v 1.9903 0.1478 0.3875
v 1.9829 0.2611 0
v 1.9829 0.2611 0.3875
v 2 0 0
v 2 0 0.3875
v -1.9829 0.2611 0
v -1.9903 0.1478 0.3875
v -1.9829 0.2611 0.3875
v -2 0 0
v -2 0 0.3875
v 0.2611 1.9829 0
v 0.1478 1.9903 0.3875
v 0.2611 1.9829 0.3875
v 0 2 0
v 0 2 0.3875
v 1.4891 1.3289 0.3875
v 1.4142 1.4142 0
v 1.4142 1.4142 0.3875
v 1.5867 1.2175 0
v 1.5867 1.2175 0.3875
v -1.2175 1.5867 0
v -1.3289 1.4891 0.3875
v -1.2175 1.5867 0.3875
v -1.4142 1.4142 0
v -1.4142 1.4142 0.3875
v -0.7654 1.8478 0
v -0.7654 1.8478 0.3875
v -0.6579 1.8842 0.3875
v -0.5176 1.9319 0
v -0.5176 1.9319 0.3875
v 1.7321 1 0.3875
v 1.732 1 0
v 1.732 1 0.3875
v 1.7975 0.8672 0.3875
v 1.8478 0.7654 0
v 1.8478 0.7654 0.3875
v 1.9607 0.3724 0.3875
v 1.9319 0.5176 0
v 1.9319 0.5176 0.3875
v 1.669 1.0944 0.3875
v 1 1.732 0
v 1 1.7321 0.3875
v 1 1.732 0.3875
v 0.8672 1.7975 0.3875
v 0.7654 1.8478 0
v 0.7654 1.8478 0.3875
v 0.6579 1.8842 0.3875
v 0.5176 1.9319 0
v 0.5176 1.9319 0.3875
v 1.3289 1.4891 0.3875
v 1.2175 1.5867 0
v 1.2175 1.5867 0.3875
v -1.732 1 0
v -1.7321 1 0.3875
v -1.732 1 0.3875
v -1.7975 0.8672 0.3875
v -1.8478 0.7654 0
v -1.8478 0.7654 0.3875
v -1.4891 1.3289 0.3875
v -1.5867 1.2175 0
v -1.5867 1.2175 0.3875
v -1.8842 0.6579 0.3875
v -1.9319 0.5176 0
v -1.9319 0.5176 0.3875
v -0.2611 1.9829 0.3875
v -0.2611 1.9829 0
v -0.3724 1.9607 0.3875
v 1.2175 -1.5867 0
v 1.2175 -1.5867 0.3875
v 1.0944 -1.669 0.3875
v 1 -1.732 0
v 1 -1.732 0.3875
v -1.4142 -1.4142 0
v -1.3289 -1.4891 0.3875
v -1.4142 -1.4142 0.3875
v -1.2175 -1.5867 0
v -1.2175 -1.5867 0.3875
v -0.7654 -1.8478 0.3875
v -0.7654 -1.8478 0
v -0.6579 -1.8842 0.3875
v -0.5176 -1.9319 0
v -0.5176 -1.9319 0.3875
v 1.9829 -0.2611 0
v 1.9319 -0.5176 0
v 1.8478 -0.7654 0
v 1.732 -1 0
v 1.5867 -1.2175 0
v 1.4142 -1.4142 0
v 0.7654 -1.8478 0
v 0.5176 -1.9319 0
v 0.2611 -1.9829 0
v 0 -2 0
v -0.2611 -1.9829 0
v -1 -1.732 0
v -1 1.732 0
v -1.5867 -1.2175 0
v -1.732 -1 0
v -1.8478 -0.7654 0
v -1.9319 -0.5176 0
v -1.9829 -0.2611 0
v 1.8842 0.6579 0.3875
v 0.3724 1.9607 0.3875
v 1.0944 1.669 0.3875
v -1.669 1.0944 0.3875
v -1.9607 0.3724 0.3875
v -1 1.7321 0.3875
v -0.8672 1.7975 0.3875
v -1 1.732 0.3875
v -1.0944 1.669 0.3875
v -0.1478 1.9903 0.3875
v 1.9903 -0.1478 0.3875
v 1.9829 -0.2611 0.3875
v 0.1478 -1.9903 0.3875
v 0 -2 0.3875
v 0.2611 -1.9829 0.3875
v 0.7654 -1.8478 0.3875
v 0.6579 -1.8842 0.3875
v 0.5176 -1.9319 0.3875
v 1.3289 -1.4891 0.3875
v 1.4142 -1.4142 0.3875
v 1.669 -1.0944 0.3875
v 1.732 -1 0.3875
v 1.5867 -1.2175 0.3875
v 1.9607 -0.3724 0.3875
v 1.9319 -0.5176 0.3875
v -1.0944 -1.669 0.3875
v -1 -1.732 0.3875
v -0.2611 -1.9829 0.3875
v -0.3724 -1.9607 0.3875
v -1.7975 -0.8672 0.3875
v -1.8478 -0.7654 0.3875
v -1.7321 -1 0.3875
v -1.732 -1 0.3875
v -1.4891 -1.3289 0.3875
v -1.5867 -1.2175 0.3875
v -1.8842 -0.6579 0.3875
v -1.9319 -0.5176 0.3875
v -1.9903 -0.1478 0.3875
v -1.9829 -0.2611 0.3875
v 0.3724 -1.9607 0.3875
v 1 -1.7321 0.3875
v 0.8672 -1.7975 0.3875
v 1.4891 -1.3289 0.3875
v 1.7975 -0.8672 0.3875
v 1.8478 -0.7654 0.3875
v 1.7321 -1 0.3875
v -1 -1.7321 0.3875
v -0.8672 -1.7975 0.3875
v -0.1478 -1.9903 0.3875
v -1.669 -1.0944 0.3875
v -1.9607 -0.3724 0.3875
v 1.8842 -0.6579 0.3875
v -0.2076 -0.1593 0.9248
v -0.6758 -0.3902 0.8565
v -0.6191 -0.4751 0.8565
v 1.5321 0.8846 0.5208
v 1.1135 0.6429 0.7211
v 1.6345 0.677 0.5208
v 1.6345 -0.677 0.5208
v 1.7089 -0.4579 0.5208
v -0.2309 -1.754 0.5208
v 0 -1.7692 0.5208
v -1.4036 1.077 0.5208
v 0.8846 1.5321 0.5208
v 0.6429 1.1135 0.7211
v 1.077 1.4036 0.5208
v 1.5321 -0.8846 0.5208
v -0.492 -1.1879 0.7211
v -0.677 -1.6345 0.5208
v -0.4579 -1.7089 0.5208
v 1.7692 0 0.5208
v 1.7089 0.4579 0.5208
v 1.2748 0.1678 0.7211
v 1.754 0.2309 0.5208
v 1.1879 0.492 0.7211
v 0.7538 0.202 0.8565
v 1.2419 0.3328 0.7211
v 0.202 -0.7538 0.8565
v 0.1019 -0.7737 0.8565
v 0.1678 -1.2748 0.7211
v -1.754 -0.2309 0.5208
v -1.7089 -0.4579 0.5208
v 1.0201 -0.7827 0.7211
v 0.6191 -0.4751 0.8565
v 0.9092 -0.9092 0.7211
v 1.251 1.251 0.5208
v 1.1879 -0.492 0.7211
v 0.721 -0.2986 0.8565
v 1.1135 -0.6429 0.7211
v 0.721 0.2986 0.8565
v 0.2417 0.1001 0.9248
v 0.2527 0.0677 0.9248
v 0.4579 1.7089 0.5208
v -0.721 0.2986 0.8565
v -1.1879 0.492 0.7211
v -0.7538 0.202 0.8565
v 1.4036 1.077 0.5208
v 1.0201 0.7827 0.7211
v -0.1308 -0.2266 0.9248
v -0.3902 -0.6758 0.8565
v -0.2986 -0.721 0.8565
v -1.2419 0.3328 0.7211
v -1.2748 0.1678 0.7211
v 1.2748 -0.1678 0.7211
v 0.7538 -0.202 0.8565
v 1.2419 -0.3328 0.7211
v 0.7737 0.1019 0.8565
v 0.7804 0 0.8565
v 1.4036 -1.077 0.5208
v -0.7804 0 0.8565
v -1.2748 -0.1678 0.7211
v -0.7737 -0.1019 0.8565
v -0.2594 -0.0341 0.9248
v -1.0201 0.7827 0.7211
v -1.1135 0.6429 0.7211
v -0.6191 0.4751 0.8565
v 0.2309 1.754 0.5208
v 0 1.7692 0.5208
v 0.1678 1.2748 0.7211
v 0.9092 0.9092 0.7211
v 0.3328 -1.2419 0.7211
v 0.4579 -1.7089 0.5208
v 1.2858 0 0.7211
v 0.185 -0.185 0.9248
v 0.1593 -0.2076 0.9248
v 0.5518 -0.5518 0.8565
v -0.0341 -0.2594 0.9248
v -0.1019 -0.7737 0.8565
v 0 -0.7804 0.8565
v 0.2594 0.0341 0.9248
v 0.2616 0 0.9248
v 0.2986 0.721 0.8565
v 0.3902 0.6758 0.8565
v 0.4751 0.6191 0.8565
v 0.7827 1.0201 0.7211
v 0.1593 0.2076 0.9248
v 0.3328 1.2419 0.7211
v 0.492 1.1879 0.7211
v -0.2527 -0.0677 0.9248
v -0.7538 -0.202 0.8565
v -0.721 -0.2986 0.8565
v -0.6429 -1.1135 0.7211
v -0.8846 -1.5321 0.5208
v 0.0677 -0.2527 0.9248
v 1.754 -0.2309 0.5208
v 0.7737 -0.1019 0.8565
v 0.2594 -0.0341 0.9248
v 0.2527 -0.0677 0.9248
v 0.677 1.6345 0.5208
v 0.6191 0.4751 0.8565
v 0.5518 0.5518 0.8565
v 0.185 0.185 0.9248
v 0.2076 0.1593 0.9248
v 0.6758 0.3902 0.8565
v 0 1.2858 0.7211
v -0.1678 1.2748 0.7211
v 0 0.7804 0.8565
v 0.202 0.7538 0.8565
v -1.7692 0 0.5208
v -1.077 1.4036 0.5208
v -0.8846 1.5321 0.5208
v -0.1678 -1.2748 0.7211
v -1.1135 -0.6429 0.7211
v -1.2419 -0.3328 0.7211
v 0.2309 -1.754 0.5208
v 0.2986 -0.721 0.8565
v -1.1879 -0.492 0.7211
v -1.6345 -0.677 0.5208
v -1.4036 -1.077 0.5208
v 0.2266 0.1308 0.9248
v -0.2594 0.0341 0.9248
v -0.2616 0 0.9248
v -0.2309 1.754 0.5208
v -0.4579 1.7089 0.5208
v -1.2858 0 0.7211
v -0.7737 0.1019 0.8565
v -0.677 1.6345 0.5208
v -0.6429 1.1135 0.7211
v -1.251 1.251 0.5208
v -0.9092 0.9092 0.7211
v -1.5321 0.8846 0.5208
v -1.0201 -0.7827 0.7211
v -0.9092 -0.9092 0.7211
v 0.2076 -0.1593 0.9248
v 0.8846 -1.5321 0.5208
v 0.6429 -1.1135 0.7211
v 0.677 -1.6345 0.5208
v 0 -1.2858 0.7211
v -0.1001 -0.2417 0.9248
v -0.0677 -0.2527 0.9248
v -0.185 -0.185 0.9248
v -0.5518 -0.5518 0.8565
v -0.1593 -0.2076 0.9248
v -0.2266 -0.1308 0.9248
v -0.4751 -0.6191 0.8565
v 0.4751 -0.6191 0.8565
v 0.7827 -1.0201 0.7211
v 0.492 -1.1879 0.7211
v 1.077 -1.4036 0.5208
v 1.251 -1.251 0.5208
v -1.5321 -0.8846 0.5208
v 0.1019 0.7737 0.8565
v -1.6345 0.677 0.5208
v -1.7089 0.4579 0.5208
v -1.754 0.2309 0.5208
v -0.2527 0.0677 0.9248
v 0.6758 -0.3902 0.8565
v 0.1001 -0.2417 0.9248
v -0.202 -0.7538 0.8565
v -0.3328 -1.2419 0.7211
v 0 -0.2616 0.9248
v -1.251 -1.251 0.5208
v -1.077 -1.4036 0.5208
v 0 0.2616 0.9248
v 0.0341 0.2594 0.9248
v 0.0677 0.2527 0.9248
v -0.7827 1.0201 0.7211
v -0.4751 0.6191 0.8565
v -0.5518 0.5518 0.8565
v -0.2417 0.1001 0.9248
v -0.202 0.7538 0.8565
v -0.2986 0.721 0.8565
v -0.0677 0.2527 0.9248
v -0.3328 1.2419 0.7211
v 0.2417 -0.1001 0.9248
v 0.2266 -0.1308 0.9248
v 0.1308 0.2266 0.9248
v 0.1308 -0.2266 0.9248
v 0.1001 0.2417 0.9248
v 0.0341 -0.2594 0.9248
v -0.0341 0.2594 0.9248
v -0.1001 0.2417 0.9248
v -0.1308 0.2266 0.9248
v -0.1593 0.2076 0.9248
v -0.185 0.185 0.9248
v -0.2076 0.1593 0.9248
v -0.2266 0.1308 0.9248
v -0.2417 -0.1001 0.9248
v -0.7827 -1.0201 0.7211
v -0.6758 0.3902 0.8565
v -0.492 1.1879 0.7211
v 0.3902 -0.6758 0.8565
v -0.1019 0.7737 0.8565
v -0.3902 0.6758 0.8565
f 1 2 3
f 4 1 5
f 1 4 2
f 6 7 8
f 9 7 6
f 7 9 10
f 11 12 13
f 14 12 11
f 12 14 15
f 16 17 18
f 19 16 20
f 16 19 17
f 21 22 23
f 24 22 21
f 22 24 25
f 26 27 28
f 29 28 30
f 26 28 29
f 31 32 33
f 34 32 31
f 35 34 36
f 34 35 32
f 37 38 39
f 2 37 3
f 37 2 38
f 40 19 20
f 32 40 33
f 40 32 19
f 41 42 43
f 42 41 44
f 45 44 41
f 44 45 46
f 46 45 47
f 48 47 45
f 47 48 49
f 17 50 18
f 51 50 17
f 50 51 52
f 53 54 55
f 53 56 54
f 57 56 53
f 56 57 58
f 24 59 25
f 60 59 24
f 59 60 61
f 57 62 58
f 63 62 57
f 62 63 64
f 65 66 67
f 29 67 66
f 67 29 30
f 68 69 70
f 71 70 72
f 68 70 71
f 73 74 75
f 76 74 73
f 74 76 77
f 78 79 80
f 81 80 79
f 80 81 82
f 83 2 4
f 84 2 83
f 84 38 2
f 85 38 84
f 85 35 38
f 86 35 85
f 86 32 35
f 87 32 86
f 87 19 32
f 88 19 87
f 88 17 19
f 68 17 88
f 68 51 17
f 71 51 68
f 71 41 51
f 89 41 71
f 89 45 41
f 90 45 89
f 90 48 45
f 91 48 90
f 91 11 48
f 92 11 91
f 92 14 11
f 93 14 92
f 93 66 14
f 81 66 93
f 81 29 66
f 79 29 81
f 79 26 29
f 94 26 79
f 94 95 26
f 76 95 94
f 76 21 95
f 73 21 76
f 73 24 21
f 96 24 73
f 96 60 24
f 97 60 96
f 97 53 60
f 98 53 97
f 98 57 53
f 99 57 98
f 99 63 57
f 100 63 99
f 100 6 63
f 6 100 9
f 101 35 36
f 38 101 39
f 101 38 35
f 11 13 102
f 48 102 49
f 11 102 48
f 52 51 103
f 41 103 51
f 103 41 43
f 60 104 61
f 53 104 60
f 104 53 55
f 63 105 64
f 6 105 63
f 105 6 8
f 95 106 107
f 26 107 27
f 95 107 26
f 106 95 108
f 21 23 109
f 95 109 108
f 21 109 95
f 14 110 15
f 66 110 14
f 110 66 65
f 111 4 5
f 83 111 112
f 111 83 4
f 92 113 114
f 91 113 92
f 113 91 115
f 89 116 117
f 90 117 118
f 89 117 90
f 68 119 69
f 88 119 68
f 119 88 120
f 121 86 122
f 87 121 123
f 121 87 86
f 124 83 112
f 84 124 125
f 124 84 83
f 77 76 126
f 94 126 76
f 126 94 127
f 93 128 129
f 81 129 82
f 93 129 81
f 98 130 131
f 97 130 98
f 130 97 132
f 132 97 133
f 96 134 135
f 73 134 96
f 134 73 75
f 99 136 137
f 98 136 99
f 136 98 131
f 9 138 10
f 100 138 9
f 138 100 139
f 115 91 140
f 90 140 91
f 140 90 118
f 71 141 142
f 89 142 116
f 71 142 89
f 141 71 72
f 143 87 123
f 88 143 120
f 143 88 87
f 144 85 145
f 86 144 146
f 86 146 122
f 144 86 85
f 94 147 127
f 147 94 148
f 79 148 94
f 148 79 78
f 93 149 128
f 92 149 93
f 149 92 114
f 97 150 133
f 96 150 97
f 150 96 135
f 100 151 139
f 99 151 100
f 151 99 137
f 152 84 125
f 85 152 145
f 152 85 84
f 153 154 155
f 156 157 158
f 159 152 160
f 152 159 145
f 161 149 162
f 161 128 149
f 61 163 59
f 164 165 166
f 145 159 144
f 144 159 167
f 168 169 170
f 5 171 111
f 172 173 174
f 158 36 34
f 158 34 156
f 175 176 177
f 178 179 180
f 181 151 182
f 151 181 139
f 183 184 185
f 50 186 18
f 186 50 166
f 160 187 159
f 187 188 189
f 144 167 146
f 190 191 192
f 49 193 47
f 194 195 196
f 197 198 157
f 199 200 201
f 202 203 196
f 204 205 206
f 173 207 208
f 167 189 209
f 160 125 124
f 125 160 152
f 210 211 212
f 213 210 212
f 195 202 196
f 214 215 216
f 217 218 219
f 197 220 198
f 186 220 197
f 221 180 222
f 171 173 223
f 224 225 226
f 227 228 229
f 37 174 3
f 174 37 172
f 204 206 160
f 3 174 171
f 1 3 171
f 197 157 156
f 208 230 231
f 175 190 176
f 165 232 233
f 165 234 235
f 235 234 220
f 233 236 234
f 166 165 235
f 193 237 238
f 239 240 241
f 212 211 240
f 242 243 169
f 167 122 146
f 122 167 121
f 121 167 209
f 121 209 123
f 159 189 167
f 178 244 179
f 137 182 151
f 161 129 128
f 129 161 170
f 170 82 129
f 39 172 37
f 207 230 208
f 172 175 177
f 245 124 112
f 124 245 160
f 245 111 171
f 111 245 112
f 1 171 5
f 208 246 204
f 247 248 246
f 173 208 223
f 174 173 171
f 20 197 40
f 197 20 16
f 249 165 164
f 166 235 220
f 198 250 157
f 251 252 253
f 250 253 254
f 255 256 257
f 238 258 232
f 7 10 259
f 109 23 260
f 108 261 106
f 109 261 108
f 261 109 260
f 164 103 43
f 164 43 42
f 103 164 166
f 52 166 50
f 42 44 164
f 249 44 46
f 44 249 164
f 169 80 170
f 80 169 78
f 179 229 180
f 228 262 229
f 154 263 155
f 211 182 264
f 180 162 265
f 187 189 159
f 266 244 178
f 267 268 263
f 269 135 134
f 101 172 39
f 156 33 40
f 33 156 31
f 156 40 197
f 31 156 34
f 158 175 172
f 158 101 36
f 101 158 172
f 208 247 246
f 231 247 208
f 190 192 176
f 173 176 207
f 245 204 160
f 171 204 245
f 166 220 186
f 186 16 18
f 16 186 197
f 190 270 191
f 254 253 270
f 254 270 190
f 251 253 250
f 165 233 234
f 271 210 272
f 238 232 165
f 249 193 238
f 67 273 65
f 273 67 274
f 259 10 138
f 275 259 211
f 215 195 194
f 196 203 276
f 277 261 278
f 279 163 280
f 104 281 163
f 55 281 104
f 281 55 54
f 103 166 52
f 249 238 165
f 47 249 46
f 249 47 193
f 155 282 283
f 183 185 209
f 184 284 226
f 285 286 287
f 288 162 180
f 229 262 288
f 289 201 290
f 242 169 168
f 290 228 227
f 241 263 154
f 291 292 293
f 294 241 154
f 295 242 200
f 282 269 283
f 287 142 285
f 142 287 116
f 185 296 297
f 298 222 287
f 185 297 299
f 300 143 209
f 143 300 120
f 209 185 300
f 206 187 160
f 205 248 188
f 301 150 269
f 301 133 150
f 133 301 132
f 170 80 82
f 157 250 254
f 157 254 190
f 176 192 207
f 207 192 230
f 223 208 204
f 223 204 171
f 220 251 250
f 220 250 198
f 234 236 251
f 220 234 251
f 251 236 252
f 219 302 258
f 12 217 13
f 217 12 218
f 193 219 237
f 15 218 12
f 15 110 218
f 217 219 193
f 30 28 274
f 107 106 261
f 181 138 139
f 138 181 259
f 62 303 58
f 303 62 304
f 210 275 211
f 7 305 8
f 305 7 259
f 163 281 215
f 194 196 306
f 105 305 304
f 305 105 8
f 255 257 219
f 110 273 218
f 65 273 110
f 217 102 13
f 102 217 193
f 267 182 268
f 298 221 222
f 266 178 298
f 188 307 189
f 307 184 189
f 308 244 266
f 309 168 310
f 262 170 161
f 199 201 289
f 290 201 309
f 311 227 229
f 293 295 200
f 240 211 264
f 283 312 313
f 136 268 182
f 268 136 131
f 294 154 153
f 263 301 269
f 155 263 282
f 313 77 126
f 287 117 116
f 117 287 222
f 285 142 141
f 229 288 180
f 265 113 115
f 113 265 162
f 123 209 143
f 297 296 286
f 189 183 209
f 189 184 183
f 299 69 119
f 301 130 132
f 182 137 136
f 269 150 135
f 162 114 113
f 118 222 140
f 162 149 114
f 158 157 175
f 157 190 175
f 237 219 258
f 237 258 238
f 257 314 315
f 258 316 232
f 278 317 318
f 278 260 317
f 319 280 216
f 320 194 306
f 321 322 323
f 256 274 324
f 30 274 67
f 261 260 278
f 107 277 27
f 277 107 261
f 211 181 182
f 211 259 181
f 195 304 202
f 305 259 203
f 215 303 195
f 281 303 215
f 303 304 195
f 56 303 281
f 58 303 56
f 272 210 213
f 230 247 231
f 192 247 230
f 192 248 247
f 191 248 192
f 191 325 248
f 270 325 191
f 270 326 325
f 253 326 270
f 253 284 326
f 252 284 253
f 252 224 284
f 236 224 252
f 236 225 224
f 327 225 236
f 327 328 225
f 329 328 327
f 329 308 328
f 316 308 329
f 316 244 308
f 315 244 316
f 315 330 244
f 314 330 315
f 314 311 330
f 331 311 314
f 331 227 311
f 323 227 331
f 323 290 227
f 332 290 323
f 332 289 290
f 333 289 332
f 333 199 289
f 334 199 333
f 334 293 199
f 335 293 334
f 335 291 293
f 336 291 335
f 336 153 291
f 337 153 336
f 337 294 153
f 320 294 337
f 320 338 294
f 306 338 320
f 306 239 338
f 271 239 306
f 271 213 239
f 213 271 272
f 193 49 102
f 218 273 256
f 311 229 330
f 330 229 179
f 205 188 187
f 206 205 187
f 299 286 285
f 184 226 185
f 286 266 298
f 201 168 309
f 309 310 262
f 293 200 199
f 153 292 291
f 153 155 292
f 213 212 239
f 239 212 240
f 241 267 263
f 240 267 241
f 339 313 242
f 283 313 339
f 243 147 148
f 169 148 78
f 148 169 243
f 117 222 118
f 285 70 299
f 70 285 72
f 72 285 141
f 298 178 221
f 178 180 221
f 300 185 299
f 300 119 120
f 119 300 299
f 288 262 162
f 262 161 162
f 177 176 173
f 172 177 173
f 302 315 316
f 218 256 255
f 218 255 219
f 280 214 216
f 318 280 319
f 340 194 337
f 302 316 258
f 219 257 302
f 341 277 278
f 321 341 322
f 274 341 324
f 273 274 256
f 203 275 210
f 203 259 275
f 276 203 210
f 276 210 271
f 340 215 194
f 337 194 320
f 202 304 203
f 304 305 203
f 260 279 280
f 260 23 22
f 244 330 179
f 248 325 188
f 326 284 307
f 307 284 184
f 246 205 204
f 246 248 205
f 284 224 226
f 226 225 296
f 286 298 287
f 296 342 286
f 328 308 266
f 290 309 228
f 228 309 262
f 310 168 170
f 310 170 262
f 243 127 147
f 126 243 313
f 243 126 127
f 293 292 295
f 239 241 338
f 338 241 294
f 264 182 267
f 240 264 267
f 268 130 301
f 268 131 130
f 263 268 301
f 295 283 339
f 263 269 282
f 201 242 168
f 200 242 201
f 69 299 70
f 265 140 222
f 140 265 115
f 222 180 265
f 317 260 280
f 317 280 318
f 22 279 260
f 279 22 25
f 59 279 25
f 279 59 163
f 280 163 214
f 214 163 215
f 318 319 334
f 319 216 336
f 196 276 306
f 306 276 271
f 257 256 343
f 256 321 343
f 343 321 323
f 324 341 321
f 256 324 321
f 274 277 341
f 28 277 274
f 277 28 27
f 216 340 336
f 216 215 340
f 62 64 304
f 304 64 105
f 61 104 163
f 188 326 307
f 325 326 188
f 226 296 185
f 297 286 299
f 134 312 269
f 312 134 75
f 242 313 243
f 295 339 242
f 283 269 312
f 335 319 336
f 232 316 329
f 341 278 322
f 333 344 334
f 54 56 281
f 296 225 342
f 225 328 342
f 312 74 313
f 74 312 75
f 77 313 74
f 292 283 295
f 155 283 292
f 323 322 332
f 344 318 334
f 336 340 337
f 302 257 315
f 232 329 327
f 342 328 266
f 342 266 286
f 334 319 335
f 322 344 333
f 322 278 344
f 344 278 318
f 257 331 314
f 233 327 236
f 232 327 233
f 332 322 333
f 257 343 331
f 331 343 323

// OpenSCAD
// file: const.scad
tolerance = .2;
shift = 1;

tile_width = 14;
tile_height = 45;
tile_depth = 2;

holder_edge = 1;
holder_count = 5;
holder_angle = 10;
holder_connector_radius = 2;
holder_connector_offset = 8;
holder_width = tile_width + 2 * holder_edge + 2 * tolerance;
holder_height = 25;
holder_depth = tile_depth + 3 * holder_edge + 2 * tolerance;

base_link = 8;
base_slot = 22 + 2 * tolerance;
base_spacing = 2;
base_rod_radius = 1;
base_rod_offset = cos(holder_angle) * (holder_connector_radius + holder_connector_offset);
base_width = holder_count * (holder_width + base_spacing);
base_height = 2;
base_depth = holder_height;

foot_radius = 2;
foot_height = .4;
// main file
include <const.scad>

foot();

module foot() {
  intersection() {
    cylinder(r=foot_radius, h=2 * foot_radius, $fn=48);
    translate([0, 0, -2 * foot_radius + 7 * foot_height / 3]) sphere(r=2 * foot_radius, $fn=48);
  }
}
